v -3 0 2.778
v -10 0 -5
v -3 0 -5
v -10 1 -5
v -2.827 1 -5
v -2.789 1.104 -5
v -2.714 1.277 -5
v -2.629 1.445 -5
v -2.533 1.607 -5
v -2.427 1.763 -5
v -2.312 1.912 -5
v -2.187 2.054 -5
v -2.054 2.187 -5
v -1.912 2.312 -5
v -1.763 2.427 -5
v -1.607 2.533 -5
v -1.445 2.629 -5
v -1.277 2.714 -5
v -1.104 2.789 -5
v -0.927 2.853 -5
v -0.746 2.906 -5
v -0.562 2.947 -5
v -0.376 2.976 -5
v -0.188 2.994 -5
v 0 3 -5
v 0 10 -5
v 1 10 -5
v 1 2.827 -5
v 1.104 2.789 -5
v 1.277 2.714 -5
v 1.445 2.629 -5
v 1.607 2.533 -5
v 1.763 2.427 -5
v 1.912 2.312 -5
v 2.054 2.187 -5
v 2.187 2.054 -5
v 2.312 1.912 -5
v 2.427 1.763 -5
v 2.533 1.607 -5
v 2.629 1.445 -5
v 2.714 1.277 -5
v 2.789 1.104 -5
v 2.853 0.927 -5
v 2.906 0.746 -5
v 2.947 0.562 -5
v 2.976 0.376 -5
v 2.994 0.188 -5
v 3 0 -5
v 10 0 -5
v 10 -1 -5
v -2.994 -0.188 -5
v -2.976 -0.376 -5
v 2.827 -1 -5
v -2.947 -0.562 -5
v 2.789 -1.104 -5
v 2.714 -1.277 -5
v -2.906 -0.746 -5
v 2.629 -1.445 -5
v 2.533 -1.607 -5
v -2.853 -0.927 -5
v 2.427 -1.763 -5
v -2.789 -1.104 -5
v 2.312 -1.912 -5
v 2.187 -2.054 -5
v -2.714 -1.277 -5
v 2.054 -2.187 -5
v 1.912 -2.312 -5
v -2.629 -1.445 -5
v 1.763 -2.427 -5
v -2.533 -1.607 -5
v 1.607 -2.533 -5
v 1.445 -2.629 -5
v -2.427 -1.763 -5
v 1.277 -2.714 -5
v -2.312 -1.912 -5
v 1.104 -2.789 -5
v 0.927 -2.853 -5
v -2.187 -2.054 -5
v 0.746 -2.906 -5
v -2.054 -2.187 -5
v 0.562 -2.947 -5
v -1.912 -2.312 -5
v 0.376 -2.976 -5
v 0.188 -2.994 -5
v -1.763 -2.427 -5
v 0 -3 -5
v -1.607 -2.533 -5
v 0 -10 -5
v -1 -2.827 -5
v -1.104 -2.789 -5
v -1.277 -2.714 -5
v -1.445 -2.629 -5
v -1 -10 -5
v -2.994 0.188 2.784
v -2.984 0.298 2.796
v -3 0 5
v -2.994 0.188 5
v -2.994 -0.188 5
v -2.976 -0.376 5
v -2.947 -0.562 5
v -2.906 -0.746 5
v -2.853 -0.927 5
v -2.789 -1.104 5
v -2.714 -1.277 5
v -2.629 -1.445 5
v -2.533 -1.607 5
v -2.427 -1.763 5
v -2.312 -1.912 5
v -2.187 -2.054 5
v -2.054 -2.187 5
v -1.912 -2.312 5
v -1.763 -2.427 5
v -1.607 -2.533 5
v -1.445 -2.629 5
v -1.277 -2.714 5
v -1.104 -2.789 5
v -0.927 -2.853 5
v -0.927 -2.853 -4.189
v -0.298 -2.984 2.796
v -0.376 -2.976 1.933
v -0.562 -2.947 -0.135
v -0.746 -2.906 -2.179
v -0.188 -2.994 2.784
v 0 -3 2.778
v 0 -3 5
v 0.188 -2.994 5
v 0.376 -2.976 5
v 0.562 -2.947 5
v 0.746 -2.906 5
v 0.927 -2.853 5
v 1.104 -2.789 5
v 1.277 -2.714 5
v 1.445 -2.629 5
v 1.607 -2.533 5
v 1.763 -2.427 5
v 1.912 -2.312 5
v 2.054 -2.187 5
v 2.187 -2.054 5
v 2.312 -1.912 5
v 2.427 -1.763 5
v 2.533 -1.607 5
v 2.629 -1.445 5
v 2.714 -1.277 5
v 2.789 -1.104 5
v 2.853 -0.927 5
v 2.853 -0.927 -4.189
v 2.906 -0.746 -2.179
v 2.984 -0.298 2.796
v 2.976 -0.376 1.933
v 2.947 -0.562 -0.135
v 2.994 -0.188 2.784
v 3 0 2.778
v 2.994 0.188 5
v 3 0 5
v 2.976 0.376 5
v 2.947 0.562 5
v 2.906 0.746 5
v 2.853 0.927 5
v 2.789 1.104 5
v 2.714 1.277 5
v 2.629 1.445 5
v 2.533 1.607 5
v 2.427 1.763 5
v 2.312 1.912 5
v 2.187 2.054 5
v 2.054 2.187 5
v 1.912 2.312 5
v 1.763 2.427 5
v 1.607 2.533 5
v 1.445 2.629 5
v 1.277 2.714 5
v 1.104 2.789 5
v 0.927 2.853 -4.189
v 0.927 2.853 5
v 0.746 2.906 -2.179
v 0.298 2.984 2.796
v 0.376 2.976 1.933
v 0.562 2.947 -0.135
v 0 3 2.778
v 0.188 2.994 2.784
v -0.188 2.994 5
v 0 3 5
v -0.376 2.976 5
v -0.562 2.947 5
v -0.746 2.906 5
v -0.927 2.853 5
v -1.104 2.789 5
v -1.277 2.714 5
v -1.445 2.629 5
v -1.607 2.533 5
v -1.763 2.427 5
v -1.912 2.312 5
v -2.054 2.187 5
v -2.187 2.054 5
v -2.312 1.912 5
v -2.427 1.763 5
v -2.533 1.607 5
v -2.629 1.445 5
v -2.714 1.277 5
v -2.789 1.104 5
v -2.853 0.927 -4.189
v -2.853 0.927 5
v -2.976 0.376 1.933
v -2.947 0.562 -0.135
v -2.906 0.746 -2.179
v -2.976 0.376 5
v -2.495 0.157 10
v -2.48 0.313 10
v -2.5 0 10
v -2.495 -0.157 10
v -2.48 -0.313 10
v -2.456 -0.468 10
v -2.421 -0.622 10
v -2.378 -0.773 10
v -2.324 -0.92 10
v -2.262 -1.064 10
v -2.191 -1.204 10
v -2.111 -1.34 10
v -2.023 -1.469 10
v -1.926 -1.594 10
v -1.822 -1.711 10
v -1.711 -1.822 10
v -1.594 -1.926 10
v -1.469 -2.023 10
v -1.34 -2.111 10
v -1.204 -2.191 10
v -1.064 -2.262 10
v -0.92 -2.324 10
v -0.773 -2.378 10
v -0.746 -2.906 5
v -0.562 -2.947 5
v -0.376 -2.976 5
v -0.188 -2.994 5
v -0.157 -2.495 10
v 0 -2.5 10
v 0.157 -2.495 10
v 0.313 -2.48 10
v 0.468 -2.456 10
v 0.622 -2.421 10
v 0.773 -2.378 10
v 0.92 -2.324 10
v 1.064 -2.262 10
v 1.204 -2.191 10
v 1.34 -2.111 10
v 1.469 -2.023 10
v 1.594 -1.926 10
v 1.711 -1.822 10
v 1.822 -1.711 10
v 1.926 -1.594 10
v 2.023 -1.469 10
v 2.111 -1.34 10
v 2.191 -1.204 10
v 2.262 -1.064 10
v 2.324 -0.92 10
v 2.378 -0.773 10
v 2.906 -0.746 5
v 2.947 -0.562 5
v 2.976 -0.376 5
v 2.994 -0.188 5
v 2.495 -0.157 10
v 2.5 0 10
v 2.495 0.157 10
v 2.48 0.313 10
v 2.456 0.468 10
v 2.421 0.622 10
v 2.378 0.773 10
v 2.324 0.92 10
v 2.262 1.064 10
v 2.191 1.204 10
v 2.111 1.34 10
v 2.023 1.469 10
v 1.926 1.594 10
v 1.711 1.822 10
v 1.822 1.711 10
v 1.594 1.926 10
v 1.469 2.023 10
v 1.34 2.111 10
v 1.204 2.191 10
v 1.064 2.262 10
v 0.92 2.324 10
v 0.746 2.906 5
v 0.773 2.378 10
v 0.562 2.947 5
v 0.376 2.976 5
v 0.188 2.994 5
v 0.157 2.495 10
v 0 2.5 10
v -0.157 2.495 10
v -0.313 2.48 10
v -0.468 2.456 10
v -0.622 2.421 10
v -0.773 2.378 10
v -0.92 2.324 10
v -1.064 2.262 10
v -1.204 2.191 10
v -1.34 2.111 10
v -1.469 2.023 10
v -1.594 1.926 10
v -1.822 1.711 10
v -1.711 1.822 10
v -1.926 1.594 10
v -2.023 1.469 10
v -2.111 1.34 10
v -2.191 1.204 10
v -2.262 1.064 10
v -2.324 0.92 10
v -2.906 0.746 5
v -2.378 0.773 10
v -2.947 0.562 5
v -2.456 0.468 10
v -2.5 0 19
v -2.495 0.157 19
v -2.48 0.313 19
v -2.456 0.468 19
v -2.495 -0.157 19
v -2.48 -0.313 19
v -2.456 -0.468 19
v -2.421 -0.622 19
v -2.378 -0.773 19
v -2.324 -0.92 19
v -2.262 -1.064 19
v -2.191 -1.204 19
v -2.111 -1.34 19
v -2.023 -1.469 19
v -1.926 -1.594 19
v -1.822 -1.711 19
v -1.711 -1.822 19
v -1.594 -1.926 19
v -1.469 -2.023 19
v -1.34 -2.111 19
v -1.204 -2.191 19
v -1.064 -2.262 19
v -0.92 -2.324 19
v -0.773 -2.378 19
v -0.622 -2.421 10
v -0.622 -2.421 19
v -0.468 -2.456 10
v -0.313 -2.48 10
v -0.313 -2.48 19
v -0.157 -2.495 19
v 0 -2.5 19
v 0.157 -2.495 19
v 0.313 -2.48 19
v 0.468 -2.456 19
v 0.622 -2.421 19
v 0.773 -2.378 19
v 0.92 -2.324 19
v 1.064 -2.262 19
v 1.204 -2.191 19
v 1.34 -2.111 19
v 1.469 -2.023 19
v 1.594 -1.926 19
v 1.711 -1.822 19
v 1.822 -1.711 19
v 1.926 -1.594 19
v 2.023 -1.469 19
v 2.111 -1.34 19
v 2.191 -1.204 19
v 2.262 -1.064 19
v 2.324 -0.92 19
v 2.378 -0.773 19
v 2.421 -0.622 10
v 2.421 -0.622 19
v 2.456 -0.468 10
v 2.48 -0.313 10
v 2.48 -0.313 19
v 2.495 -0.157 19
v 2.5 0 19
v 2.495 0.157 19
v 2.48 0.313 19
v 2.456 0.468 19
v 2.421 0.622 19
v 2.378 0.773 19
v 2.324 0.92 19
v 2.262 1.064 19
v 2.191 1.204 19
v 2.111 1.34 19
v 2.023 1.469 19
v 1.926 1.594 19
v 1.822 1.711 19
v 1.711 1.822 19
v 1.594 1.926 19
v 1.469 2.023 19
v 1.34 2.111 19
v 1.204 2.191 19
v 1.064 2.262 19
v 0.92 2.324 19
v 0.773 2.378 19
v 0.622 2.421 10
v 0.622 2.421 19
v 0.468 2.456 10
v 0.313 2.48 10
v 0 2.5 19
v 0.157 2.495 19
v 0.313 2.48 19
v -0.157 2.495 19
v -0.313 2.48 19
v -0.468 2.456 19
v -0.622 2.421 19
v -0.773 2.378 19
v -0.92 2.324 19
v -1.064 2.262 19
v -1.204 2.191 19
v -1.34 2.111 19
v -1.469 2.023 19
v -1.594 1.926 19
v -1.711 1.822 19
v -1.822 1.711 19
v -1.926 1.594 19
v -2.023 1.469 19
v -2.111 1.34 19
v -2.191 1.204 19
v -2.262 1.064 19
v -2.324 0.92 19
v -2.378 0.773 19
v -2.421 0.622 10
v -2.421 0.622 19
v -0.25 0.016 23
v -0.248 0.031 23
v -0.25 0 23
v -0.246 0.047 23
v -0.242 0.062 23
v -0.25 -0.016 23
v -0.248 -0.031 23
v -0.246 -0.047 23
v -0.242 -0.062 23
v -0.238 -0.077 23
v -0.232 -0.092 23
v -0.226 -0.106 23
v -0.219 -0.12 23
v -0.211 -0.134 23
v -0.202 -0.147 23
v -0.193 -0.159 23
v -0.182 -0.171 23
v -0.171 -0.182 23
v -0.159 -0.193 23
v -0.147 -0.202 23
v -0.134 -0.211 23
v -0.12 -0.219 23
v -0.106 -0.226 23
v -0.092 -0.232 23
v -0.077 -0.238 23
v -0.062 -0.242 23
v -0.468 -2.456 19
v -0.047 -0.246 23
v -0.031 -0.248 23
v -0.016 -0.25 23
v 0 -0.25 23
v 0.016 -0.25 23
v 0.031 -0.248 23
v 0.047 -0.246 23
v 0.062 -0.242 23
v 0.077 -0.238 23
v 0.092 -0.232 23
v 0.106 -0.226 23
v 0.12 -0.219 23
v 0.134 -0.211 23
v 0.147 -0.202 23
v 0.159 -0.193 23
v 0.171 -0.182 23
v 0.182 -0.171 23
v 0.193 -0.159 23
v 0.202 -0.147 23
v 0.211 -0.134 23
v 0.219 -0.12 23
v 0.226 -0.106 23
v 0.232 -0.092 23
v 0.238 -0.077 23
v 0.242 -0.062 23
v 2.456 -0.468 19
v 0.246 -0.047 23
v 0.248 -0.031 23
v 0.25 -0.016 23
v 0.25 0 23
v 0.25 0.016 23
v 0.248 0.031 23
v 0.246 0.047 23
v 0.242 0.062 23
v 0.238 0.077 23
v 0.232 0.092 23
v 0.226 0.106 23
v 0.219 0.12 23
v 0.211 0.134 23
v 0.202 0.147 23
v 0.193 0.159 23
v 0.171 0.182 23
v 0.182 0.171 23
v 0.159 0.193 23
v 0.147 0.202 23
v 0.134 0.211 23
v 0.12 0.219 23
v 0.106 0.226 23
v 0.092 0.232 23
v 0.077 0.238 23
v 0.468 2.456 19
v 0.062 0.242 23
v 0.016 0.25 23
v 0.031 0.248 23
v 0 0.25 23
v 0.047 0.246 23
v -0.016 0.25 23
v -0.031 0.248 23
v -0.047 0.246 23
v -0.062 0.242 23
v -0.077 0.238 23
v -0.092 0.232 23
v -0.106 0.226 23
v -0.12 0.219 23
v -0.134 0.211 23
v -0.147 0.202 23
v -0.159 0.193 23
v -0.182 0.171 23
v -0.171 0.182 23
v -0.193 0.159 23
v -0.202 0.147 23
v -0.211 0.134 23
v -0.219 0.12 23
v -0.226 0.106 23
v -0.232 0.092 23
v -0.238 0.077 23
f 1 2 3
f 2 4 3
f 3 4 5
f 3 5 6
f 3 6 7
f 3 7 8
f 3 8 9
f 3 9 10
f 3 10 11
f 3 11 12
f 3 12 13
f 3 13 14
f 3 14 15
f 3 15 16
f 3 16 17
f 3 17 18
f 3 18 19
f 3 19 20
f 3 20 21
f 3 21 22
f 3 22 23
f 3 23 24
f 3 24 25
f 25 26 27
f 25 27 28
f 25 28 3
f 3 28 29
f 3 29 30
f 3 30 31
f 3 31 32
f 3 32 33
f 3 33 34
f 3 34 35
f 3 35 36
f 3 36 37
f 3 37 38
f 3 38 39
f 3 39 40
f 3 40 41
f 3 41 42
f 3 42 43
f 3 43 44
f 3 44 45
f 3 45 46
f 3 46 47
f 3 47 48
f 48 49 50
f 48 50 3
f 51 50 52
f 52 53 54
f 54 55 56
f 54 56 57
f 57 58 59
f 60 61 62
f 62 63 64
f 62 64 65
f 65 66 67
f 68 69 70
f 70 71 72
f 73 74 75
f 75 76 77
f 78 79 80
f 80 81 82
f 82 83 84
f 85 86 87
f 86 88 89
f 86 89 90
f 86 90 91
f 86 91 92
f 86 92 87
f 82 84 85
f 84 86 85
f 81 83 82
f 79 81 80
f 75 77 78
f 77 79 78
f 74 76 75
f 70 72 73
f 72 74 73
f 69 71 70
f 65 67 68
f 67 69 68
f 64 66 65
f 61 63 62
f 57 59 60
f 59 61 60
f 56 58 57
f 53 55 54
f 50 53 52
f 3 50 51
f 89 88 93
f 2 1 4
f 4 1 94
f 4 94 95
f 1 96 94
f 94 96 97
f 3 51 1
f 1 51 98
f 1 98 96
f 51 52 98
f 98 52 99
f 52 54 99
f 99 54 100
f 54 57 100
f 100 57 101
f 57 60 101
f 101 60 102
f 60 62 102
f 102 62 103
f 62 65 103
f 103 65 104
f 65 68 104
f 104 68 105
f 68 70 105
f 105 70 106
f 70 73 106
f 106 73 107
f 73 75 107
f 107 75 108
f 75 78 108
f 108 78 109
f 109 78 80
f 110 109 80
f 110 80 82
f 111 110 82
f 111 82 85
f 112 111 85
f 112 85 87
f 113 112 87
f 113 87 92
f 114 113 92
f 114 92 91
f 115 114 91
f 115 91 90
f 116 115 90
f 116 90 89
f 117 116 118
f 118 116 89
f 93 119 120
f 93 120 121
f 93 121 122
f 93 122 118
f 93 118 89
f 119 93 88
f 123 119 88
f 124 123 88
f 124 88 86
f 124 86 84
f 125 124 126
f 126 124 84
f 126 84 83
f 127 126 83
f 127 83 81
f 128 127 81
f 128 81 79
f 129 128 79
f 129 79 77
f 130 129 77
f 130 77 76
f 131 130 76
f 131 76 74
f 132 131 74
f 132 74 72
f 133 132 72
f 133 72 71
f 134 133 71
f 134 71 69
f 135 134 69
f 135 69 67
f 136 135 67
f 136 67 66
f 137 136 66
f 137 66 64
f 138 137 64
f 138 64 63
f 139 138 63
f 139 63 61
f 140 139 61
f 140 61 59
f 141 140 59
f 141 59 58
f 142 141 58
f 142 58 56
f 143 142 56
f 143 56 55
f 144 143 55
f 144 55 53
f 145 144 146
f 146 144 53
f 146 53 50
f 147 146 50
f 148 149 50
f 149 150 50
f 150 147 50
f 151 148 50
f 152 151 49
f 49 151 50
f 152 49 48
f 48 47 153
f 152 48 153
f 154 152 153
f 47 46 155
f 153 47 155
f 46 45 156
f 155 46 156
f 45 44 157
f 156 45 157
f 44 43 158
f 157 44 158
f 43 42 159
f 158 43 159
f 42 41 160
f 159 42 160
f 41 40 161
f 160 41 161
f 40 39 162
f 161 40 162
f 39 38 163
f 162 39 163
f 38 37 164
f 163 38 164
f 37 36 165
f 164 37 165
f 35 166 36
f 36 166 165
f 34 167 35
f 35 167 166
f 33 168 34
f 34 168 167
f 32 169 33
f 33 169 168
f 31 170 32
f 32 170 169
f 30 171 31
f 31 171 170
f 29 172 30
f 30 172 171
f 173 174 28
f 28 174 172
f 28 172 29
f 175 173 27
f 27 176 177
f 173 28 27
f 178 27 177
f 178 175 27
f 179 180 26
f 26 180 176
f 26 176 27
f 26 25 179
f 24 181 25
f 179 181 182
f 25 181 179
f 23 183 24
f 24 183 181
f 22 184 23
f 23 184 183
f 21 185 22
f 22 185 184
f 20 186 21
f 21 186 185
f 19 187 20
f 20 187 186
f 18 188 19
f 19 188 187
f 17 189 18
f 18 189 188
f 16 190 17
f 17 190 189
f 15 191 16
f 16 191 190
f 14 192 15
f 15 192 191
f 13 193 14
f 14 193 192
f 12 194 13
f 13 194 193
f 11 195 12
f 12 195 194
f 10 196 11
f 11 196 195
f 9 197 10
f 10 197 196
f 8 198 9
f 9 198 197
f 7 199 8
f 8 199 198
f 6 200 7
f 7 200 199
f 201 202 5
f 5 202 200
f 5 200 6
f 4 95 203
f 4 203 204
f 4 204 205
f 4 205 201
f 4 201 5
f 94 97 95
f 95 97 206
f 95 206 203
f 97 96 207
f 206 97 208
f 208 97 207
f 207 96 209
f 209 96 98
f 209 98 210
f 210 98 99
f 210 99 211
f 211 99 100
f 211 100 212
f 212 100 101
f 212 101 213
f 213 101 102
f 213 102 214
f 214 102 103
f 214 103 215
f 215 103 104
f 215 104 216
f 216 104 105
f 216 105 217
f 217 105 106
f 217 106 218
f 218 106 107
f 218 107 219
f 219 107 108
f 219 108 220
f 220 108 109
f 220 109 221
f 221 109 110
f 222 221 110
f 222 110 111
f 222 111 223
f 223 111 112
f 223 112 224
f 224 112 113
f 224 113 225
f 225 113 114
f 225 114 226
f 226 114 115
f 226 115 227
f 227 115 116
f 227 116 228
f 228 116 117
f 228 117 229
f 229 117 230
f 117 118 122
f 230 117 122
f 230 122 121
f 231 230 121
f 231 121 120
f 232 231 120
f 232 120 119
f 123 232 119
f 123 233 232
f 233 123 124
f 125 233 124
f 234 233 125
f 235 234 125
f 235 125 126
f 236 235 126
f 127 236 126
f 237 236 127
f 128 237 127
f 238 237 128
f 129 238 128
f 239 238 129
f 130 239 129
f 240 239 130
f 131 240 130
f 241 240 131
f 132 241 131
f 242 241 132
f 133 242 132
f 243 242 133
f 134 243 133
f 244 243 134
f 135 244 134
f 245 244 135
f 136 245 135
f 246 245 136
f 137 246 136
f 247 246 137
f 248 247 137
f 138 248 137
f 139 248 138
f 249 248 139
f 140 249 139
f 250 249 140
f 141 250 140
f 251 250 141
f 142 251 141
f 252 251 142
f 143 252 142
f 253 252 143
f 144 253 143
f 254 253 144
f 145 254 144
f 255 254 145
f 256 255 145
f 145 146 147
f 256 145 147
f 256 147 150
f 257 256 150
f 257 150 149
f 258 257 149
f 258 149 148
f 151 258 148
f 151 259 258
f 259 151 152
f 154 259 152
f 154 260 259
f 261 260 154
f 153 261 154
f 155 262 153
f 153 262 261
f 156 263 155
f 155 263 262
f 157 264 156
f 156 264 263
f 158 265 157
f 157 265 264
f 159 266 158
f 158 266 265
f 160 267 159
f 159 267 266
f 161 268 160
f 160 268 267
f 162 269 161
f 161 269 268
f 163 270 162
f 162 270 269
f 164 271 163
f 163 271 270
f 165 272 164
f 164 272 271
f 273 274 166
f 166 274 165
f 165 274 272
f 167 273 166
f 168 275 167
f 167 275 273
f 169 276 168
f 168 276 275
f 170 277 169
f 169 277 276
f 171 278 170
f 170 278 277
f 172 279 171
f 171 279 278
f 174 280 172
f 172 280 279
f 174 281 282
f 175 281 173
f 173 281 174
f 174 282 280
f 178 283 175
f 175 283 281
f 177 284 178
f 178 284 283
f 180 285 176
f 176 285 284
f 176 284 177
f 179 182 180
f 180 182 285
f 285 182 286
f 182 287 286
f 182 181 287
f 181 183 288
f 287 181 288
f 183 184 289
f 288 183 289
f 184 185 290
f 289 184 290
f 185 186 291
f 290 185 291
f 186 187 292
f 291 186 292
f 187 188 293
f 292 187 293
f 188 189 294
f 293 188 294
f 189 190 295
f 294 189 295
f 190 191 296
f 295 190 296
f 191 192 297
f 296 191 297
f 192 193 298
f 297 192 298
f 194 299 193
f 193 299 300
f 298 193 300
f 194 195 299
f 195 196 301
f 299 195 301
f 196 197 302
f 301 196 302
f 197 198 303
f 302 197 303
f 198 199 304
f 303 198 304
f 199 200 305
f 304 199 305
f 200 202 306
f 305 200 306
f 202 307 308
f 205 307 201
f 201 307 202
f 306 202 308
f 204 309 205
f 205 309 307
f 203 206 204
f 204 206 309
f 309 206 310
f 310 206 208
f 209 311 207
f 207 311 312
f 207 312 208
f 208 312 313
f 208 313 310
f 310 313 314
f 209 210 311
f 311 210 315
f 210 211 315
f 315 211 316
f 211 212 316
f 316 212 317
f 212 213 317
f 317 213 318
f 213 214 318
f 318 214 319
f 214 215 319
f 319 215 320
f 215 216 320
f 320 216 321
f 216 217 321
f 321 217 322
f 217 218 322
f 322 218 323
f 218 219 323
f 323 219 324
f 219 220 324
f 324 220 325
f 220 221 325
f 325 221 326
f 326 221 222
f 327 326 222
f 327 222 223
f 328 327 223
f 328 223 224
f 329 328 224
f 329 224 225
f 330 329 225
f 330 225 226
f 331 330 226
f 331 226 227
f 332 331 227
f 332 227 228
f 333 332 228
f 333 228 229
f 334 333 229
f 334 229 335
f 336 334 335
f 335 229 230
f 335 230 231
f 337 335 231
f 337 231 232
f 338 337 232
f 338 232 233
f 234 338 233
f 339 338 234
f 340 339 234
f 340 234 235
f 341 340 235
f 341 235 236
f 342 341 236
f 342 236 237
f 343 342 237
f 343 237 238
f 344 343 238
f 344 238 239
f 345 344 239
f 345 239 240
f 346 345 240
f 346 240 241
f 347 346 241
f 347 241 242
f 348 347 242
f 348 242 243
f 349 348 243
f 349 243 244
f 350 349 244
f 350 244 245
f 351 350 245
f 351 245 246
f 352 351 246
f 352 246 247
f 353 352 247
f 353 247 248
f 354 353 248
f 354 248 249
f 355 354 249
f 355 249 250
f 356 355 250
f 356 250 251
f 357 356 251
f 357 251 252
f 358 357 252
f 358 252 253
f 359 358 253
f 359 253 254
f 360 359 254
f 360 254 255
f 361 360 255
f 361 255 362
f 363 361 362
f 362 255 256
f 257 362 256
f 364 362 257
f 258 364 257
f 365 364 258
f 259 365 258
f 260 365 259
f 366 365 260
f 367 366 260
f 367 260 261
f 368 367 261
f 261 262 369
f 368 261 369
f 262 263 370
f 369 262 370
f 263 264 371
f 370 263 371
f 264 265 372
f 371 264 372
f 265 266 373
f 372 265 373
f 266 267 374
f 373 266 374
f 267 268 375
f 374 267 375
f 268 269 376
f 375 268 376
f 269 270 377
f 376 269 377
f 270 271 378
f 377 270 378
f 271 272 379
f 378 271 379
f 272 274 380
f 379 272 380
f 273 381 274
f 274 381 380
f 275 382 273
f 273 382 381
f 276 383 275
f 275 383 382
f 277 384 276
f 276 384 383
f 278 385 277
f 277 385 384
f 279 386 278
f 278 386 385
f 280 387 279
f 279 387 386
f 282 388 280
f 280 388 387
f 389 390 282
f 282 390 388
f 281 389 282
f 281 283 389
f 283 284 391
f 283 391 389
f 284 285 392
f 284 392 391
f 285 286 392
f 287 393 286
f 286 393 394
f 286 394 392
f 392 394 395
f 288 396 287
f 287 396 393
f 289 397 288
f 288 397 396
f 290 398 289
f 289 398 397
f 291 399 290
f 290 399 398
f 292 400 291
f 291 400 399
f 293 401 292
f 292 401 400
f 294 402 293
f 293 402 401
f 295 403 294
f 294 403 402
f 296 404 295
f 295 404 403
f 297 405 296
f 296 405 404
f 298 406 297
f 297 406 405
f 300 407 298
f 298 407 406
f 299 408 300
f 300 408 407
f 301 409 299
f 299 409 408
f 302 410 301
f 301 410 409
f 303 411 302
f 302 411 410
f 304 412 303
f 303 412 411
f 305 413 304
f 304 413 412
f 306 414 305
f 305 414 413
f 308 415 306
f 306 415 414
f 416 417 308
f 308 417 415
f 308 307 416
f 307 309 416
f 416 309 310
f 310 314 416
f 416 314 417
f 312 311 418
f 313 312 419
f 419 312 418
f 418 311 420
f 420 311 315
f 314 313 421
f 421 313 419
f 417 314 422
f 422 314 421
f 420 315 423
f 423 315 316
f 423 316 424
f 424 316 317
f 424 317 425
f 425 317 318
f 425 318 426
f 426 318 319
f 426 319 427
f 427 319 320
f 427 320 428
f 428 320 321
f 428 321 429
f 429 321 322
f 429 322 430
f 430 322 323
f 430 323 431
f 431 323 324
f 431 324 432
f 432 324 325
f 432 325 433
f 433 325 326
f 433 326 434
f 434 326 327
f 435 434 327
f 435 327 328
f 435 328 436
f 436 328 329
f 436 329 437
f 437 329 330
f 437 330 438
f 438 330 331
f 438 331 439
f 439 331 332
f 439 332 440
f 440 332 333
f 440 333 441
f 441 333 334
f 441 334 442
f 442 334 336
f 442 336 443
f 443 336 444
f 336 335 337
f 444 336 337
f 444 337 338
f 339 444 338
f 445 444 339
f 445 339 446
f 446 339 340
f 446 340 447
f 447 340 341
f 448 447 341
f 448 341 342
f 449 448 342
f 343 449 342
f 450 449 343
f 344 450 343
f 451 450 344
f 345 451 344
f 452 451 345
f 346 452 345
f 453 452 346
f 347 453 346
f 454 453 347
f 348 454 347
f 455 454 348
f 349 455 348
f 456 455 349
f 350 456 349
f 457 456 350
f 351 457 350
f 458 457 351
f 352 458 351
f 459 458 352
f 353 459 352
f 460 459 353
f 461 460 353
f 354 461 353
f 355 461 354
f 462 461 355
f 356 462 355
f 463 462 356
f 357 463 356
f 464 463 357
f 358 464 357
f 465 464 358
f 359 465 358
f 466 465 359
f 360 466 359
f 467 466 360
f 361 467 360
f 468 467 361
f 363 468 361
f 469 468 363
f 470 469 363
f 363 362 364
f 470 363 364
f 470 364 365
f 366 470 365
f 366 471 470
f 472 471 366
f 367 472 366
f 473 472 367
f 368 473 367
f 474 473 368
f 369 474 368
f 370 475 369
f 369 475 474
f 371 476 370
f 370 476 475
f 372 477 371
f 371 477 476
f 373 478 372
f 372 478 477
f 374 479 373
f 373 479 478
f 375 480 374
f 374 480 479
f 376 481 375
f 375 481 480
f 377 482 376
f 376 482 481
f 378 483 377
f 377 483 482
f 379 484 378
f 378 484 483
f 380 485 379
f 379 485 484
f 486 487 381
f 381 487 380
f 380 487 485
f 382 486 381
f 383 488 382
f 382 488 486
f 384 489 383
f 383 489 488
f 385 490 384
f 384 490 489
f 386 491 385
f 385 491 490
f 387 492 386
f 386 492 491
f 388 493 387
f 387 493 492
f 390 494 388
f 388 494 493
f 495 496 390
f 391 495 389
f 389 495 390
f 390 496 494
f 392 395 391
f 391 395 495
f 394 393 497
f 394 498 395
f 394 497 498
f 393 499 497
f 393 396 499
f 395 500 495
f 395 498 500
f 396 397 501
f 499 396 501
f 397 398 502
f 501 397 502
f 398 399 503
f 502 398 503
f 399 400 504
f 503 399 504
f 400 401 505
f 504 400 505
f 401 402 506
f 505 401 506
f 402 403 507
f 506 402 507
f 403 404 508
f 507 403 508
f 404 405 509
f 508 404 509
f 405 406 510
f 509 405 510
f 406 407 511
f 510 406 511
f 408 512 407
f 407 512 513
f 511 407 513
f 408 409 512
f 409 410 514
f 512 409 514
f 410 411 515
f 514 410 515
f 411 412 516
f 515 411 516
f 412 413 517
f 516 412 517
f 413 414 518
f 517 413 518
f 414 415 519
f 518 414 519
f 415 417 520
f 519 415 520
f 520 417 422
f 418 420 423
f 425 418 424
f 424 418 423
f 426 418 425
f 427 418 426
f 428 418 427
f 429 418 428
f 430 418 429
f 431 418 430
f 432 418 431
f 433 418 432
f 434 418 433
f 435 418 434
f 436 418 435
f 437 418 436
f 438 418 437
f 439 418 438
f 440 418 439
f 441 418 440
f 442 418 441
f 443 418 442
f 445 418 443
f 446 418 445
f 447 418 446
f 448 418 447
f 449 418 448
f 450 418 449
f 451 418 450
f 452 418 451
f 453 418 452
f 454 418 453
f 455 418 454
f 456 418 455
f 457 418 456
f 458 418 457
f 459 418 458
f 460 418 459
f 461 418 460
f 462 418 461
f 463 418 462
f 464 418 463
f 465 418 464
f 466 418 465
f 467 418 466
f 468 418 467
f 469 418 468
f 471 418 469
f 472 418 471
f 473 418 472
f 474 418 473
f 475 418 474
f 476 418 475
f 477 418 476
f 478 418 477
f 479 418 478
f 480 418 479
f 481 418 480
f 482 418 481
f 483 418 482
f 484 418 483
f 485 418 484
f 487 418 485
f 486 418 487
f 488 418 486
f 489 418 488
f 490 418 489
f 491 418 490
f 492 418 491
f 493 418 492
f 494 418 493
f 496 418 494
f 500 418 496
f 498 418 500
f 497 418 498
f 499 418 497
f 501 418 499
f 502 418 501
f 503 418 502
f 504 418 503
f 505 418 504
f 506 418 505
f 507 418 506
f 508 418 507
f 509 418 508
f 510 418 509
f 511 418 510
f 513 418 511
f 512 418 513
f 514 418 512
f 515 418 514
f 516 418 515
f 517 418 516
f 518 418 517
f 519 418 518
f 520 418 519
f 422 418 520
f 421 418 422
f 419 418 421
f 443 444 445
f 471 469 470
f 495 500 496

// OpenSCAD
linear_extrude(height = 10, center = true, scale = .1) {
translate([0, 0, 0]) square([1,10]);
}

linear_extrude(height = 10, center = true, scale = .1) {
translate([0, 0, 0]) rotate([0, 0, 180]) square([1,10]);
}

linear_extrude(height = 10, center = true, scale = .1) {
translate([0, 0, 0]) rotate([0, 0, 270]) square([1,10]);
}

linear_extrude(height = 10, center = true, scale = .1) {
translate([0, 0, 0]) rotate([0, 0, 90]) square([1,10]);
}


translate([0, 0, -5])  color("green", 0.2) cylinder(h = 10, r=3, $fn=100); 



translate([0, 0, 5]) color("red", 0.2) cylinder(h = 5, r=3, $fn=100, d2 = 5);



translate([0, 0, 10]) color("blue", 0.2) cylinder(h = 9, r=2.5, $fn=100);



translate([0, 0, 19]) color("black", 0.2) cylinder(h = 4, r=2.5, $fn=100, d2 = .5);
